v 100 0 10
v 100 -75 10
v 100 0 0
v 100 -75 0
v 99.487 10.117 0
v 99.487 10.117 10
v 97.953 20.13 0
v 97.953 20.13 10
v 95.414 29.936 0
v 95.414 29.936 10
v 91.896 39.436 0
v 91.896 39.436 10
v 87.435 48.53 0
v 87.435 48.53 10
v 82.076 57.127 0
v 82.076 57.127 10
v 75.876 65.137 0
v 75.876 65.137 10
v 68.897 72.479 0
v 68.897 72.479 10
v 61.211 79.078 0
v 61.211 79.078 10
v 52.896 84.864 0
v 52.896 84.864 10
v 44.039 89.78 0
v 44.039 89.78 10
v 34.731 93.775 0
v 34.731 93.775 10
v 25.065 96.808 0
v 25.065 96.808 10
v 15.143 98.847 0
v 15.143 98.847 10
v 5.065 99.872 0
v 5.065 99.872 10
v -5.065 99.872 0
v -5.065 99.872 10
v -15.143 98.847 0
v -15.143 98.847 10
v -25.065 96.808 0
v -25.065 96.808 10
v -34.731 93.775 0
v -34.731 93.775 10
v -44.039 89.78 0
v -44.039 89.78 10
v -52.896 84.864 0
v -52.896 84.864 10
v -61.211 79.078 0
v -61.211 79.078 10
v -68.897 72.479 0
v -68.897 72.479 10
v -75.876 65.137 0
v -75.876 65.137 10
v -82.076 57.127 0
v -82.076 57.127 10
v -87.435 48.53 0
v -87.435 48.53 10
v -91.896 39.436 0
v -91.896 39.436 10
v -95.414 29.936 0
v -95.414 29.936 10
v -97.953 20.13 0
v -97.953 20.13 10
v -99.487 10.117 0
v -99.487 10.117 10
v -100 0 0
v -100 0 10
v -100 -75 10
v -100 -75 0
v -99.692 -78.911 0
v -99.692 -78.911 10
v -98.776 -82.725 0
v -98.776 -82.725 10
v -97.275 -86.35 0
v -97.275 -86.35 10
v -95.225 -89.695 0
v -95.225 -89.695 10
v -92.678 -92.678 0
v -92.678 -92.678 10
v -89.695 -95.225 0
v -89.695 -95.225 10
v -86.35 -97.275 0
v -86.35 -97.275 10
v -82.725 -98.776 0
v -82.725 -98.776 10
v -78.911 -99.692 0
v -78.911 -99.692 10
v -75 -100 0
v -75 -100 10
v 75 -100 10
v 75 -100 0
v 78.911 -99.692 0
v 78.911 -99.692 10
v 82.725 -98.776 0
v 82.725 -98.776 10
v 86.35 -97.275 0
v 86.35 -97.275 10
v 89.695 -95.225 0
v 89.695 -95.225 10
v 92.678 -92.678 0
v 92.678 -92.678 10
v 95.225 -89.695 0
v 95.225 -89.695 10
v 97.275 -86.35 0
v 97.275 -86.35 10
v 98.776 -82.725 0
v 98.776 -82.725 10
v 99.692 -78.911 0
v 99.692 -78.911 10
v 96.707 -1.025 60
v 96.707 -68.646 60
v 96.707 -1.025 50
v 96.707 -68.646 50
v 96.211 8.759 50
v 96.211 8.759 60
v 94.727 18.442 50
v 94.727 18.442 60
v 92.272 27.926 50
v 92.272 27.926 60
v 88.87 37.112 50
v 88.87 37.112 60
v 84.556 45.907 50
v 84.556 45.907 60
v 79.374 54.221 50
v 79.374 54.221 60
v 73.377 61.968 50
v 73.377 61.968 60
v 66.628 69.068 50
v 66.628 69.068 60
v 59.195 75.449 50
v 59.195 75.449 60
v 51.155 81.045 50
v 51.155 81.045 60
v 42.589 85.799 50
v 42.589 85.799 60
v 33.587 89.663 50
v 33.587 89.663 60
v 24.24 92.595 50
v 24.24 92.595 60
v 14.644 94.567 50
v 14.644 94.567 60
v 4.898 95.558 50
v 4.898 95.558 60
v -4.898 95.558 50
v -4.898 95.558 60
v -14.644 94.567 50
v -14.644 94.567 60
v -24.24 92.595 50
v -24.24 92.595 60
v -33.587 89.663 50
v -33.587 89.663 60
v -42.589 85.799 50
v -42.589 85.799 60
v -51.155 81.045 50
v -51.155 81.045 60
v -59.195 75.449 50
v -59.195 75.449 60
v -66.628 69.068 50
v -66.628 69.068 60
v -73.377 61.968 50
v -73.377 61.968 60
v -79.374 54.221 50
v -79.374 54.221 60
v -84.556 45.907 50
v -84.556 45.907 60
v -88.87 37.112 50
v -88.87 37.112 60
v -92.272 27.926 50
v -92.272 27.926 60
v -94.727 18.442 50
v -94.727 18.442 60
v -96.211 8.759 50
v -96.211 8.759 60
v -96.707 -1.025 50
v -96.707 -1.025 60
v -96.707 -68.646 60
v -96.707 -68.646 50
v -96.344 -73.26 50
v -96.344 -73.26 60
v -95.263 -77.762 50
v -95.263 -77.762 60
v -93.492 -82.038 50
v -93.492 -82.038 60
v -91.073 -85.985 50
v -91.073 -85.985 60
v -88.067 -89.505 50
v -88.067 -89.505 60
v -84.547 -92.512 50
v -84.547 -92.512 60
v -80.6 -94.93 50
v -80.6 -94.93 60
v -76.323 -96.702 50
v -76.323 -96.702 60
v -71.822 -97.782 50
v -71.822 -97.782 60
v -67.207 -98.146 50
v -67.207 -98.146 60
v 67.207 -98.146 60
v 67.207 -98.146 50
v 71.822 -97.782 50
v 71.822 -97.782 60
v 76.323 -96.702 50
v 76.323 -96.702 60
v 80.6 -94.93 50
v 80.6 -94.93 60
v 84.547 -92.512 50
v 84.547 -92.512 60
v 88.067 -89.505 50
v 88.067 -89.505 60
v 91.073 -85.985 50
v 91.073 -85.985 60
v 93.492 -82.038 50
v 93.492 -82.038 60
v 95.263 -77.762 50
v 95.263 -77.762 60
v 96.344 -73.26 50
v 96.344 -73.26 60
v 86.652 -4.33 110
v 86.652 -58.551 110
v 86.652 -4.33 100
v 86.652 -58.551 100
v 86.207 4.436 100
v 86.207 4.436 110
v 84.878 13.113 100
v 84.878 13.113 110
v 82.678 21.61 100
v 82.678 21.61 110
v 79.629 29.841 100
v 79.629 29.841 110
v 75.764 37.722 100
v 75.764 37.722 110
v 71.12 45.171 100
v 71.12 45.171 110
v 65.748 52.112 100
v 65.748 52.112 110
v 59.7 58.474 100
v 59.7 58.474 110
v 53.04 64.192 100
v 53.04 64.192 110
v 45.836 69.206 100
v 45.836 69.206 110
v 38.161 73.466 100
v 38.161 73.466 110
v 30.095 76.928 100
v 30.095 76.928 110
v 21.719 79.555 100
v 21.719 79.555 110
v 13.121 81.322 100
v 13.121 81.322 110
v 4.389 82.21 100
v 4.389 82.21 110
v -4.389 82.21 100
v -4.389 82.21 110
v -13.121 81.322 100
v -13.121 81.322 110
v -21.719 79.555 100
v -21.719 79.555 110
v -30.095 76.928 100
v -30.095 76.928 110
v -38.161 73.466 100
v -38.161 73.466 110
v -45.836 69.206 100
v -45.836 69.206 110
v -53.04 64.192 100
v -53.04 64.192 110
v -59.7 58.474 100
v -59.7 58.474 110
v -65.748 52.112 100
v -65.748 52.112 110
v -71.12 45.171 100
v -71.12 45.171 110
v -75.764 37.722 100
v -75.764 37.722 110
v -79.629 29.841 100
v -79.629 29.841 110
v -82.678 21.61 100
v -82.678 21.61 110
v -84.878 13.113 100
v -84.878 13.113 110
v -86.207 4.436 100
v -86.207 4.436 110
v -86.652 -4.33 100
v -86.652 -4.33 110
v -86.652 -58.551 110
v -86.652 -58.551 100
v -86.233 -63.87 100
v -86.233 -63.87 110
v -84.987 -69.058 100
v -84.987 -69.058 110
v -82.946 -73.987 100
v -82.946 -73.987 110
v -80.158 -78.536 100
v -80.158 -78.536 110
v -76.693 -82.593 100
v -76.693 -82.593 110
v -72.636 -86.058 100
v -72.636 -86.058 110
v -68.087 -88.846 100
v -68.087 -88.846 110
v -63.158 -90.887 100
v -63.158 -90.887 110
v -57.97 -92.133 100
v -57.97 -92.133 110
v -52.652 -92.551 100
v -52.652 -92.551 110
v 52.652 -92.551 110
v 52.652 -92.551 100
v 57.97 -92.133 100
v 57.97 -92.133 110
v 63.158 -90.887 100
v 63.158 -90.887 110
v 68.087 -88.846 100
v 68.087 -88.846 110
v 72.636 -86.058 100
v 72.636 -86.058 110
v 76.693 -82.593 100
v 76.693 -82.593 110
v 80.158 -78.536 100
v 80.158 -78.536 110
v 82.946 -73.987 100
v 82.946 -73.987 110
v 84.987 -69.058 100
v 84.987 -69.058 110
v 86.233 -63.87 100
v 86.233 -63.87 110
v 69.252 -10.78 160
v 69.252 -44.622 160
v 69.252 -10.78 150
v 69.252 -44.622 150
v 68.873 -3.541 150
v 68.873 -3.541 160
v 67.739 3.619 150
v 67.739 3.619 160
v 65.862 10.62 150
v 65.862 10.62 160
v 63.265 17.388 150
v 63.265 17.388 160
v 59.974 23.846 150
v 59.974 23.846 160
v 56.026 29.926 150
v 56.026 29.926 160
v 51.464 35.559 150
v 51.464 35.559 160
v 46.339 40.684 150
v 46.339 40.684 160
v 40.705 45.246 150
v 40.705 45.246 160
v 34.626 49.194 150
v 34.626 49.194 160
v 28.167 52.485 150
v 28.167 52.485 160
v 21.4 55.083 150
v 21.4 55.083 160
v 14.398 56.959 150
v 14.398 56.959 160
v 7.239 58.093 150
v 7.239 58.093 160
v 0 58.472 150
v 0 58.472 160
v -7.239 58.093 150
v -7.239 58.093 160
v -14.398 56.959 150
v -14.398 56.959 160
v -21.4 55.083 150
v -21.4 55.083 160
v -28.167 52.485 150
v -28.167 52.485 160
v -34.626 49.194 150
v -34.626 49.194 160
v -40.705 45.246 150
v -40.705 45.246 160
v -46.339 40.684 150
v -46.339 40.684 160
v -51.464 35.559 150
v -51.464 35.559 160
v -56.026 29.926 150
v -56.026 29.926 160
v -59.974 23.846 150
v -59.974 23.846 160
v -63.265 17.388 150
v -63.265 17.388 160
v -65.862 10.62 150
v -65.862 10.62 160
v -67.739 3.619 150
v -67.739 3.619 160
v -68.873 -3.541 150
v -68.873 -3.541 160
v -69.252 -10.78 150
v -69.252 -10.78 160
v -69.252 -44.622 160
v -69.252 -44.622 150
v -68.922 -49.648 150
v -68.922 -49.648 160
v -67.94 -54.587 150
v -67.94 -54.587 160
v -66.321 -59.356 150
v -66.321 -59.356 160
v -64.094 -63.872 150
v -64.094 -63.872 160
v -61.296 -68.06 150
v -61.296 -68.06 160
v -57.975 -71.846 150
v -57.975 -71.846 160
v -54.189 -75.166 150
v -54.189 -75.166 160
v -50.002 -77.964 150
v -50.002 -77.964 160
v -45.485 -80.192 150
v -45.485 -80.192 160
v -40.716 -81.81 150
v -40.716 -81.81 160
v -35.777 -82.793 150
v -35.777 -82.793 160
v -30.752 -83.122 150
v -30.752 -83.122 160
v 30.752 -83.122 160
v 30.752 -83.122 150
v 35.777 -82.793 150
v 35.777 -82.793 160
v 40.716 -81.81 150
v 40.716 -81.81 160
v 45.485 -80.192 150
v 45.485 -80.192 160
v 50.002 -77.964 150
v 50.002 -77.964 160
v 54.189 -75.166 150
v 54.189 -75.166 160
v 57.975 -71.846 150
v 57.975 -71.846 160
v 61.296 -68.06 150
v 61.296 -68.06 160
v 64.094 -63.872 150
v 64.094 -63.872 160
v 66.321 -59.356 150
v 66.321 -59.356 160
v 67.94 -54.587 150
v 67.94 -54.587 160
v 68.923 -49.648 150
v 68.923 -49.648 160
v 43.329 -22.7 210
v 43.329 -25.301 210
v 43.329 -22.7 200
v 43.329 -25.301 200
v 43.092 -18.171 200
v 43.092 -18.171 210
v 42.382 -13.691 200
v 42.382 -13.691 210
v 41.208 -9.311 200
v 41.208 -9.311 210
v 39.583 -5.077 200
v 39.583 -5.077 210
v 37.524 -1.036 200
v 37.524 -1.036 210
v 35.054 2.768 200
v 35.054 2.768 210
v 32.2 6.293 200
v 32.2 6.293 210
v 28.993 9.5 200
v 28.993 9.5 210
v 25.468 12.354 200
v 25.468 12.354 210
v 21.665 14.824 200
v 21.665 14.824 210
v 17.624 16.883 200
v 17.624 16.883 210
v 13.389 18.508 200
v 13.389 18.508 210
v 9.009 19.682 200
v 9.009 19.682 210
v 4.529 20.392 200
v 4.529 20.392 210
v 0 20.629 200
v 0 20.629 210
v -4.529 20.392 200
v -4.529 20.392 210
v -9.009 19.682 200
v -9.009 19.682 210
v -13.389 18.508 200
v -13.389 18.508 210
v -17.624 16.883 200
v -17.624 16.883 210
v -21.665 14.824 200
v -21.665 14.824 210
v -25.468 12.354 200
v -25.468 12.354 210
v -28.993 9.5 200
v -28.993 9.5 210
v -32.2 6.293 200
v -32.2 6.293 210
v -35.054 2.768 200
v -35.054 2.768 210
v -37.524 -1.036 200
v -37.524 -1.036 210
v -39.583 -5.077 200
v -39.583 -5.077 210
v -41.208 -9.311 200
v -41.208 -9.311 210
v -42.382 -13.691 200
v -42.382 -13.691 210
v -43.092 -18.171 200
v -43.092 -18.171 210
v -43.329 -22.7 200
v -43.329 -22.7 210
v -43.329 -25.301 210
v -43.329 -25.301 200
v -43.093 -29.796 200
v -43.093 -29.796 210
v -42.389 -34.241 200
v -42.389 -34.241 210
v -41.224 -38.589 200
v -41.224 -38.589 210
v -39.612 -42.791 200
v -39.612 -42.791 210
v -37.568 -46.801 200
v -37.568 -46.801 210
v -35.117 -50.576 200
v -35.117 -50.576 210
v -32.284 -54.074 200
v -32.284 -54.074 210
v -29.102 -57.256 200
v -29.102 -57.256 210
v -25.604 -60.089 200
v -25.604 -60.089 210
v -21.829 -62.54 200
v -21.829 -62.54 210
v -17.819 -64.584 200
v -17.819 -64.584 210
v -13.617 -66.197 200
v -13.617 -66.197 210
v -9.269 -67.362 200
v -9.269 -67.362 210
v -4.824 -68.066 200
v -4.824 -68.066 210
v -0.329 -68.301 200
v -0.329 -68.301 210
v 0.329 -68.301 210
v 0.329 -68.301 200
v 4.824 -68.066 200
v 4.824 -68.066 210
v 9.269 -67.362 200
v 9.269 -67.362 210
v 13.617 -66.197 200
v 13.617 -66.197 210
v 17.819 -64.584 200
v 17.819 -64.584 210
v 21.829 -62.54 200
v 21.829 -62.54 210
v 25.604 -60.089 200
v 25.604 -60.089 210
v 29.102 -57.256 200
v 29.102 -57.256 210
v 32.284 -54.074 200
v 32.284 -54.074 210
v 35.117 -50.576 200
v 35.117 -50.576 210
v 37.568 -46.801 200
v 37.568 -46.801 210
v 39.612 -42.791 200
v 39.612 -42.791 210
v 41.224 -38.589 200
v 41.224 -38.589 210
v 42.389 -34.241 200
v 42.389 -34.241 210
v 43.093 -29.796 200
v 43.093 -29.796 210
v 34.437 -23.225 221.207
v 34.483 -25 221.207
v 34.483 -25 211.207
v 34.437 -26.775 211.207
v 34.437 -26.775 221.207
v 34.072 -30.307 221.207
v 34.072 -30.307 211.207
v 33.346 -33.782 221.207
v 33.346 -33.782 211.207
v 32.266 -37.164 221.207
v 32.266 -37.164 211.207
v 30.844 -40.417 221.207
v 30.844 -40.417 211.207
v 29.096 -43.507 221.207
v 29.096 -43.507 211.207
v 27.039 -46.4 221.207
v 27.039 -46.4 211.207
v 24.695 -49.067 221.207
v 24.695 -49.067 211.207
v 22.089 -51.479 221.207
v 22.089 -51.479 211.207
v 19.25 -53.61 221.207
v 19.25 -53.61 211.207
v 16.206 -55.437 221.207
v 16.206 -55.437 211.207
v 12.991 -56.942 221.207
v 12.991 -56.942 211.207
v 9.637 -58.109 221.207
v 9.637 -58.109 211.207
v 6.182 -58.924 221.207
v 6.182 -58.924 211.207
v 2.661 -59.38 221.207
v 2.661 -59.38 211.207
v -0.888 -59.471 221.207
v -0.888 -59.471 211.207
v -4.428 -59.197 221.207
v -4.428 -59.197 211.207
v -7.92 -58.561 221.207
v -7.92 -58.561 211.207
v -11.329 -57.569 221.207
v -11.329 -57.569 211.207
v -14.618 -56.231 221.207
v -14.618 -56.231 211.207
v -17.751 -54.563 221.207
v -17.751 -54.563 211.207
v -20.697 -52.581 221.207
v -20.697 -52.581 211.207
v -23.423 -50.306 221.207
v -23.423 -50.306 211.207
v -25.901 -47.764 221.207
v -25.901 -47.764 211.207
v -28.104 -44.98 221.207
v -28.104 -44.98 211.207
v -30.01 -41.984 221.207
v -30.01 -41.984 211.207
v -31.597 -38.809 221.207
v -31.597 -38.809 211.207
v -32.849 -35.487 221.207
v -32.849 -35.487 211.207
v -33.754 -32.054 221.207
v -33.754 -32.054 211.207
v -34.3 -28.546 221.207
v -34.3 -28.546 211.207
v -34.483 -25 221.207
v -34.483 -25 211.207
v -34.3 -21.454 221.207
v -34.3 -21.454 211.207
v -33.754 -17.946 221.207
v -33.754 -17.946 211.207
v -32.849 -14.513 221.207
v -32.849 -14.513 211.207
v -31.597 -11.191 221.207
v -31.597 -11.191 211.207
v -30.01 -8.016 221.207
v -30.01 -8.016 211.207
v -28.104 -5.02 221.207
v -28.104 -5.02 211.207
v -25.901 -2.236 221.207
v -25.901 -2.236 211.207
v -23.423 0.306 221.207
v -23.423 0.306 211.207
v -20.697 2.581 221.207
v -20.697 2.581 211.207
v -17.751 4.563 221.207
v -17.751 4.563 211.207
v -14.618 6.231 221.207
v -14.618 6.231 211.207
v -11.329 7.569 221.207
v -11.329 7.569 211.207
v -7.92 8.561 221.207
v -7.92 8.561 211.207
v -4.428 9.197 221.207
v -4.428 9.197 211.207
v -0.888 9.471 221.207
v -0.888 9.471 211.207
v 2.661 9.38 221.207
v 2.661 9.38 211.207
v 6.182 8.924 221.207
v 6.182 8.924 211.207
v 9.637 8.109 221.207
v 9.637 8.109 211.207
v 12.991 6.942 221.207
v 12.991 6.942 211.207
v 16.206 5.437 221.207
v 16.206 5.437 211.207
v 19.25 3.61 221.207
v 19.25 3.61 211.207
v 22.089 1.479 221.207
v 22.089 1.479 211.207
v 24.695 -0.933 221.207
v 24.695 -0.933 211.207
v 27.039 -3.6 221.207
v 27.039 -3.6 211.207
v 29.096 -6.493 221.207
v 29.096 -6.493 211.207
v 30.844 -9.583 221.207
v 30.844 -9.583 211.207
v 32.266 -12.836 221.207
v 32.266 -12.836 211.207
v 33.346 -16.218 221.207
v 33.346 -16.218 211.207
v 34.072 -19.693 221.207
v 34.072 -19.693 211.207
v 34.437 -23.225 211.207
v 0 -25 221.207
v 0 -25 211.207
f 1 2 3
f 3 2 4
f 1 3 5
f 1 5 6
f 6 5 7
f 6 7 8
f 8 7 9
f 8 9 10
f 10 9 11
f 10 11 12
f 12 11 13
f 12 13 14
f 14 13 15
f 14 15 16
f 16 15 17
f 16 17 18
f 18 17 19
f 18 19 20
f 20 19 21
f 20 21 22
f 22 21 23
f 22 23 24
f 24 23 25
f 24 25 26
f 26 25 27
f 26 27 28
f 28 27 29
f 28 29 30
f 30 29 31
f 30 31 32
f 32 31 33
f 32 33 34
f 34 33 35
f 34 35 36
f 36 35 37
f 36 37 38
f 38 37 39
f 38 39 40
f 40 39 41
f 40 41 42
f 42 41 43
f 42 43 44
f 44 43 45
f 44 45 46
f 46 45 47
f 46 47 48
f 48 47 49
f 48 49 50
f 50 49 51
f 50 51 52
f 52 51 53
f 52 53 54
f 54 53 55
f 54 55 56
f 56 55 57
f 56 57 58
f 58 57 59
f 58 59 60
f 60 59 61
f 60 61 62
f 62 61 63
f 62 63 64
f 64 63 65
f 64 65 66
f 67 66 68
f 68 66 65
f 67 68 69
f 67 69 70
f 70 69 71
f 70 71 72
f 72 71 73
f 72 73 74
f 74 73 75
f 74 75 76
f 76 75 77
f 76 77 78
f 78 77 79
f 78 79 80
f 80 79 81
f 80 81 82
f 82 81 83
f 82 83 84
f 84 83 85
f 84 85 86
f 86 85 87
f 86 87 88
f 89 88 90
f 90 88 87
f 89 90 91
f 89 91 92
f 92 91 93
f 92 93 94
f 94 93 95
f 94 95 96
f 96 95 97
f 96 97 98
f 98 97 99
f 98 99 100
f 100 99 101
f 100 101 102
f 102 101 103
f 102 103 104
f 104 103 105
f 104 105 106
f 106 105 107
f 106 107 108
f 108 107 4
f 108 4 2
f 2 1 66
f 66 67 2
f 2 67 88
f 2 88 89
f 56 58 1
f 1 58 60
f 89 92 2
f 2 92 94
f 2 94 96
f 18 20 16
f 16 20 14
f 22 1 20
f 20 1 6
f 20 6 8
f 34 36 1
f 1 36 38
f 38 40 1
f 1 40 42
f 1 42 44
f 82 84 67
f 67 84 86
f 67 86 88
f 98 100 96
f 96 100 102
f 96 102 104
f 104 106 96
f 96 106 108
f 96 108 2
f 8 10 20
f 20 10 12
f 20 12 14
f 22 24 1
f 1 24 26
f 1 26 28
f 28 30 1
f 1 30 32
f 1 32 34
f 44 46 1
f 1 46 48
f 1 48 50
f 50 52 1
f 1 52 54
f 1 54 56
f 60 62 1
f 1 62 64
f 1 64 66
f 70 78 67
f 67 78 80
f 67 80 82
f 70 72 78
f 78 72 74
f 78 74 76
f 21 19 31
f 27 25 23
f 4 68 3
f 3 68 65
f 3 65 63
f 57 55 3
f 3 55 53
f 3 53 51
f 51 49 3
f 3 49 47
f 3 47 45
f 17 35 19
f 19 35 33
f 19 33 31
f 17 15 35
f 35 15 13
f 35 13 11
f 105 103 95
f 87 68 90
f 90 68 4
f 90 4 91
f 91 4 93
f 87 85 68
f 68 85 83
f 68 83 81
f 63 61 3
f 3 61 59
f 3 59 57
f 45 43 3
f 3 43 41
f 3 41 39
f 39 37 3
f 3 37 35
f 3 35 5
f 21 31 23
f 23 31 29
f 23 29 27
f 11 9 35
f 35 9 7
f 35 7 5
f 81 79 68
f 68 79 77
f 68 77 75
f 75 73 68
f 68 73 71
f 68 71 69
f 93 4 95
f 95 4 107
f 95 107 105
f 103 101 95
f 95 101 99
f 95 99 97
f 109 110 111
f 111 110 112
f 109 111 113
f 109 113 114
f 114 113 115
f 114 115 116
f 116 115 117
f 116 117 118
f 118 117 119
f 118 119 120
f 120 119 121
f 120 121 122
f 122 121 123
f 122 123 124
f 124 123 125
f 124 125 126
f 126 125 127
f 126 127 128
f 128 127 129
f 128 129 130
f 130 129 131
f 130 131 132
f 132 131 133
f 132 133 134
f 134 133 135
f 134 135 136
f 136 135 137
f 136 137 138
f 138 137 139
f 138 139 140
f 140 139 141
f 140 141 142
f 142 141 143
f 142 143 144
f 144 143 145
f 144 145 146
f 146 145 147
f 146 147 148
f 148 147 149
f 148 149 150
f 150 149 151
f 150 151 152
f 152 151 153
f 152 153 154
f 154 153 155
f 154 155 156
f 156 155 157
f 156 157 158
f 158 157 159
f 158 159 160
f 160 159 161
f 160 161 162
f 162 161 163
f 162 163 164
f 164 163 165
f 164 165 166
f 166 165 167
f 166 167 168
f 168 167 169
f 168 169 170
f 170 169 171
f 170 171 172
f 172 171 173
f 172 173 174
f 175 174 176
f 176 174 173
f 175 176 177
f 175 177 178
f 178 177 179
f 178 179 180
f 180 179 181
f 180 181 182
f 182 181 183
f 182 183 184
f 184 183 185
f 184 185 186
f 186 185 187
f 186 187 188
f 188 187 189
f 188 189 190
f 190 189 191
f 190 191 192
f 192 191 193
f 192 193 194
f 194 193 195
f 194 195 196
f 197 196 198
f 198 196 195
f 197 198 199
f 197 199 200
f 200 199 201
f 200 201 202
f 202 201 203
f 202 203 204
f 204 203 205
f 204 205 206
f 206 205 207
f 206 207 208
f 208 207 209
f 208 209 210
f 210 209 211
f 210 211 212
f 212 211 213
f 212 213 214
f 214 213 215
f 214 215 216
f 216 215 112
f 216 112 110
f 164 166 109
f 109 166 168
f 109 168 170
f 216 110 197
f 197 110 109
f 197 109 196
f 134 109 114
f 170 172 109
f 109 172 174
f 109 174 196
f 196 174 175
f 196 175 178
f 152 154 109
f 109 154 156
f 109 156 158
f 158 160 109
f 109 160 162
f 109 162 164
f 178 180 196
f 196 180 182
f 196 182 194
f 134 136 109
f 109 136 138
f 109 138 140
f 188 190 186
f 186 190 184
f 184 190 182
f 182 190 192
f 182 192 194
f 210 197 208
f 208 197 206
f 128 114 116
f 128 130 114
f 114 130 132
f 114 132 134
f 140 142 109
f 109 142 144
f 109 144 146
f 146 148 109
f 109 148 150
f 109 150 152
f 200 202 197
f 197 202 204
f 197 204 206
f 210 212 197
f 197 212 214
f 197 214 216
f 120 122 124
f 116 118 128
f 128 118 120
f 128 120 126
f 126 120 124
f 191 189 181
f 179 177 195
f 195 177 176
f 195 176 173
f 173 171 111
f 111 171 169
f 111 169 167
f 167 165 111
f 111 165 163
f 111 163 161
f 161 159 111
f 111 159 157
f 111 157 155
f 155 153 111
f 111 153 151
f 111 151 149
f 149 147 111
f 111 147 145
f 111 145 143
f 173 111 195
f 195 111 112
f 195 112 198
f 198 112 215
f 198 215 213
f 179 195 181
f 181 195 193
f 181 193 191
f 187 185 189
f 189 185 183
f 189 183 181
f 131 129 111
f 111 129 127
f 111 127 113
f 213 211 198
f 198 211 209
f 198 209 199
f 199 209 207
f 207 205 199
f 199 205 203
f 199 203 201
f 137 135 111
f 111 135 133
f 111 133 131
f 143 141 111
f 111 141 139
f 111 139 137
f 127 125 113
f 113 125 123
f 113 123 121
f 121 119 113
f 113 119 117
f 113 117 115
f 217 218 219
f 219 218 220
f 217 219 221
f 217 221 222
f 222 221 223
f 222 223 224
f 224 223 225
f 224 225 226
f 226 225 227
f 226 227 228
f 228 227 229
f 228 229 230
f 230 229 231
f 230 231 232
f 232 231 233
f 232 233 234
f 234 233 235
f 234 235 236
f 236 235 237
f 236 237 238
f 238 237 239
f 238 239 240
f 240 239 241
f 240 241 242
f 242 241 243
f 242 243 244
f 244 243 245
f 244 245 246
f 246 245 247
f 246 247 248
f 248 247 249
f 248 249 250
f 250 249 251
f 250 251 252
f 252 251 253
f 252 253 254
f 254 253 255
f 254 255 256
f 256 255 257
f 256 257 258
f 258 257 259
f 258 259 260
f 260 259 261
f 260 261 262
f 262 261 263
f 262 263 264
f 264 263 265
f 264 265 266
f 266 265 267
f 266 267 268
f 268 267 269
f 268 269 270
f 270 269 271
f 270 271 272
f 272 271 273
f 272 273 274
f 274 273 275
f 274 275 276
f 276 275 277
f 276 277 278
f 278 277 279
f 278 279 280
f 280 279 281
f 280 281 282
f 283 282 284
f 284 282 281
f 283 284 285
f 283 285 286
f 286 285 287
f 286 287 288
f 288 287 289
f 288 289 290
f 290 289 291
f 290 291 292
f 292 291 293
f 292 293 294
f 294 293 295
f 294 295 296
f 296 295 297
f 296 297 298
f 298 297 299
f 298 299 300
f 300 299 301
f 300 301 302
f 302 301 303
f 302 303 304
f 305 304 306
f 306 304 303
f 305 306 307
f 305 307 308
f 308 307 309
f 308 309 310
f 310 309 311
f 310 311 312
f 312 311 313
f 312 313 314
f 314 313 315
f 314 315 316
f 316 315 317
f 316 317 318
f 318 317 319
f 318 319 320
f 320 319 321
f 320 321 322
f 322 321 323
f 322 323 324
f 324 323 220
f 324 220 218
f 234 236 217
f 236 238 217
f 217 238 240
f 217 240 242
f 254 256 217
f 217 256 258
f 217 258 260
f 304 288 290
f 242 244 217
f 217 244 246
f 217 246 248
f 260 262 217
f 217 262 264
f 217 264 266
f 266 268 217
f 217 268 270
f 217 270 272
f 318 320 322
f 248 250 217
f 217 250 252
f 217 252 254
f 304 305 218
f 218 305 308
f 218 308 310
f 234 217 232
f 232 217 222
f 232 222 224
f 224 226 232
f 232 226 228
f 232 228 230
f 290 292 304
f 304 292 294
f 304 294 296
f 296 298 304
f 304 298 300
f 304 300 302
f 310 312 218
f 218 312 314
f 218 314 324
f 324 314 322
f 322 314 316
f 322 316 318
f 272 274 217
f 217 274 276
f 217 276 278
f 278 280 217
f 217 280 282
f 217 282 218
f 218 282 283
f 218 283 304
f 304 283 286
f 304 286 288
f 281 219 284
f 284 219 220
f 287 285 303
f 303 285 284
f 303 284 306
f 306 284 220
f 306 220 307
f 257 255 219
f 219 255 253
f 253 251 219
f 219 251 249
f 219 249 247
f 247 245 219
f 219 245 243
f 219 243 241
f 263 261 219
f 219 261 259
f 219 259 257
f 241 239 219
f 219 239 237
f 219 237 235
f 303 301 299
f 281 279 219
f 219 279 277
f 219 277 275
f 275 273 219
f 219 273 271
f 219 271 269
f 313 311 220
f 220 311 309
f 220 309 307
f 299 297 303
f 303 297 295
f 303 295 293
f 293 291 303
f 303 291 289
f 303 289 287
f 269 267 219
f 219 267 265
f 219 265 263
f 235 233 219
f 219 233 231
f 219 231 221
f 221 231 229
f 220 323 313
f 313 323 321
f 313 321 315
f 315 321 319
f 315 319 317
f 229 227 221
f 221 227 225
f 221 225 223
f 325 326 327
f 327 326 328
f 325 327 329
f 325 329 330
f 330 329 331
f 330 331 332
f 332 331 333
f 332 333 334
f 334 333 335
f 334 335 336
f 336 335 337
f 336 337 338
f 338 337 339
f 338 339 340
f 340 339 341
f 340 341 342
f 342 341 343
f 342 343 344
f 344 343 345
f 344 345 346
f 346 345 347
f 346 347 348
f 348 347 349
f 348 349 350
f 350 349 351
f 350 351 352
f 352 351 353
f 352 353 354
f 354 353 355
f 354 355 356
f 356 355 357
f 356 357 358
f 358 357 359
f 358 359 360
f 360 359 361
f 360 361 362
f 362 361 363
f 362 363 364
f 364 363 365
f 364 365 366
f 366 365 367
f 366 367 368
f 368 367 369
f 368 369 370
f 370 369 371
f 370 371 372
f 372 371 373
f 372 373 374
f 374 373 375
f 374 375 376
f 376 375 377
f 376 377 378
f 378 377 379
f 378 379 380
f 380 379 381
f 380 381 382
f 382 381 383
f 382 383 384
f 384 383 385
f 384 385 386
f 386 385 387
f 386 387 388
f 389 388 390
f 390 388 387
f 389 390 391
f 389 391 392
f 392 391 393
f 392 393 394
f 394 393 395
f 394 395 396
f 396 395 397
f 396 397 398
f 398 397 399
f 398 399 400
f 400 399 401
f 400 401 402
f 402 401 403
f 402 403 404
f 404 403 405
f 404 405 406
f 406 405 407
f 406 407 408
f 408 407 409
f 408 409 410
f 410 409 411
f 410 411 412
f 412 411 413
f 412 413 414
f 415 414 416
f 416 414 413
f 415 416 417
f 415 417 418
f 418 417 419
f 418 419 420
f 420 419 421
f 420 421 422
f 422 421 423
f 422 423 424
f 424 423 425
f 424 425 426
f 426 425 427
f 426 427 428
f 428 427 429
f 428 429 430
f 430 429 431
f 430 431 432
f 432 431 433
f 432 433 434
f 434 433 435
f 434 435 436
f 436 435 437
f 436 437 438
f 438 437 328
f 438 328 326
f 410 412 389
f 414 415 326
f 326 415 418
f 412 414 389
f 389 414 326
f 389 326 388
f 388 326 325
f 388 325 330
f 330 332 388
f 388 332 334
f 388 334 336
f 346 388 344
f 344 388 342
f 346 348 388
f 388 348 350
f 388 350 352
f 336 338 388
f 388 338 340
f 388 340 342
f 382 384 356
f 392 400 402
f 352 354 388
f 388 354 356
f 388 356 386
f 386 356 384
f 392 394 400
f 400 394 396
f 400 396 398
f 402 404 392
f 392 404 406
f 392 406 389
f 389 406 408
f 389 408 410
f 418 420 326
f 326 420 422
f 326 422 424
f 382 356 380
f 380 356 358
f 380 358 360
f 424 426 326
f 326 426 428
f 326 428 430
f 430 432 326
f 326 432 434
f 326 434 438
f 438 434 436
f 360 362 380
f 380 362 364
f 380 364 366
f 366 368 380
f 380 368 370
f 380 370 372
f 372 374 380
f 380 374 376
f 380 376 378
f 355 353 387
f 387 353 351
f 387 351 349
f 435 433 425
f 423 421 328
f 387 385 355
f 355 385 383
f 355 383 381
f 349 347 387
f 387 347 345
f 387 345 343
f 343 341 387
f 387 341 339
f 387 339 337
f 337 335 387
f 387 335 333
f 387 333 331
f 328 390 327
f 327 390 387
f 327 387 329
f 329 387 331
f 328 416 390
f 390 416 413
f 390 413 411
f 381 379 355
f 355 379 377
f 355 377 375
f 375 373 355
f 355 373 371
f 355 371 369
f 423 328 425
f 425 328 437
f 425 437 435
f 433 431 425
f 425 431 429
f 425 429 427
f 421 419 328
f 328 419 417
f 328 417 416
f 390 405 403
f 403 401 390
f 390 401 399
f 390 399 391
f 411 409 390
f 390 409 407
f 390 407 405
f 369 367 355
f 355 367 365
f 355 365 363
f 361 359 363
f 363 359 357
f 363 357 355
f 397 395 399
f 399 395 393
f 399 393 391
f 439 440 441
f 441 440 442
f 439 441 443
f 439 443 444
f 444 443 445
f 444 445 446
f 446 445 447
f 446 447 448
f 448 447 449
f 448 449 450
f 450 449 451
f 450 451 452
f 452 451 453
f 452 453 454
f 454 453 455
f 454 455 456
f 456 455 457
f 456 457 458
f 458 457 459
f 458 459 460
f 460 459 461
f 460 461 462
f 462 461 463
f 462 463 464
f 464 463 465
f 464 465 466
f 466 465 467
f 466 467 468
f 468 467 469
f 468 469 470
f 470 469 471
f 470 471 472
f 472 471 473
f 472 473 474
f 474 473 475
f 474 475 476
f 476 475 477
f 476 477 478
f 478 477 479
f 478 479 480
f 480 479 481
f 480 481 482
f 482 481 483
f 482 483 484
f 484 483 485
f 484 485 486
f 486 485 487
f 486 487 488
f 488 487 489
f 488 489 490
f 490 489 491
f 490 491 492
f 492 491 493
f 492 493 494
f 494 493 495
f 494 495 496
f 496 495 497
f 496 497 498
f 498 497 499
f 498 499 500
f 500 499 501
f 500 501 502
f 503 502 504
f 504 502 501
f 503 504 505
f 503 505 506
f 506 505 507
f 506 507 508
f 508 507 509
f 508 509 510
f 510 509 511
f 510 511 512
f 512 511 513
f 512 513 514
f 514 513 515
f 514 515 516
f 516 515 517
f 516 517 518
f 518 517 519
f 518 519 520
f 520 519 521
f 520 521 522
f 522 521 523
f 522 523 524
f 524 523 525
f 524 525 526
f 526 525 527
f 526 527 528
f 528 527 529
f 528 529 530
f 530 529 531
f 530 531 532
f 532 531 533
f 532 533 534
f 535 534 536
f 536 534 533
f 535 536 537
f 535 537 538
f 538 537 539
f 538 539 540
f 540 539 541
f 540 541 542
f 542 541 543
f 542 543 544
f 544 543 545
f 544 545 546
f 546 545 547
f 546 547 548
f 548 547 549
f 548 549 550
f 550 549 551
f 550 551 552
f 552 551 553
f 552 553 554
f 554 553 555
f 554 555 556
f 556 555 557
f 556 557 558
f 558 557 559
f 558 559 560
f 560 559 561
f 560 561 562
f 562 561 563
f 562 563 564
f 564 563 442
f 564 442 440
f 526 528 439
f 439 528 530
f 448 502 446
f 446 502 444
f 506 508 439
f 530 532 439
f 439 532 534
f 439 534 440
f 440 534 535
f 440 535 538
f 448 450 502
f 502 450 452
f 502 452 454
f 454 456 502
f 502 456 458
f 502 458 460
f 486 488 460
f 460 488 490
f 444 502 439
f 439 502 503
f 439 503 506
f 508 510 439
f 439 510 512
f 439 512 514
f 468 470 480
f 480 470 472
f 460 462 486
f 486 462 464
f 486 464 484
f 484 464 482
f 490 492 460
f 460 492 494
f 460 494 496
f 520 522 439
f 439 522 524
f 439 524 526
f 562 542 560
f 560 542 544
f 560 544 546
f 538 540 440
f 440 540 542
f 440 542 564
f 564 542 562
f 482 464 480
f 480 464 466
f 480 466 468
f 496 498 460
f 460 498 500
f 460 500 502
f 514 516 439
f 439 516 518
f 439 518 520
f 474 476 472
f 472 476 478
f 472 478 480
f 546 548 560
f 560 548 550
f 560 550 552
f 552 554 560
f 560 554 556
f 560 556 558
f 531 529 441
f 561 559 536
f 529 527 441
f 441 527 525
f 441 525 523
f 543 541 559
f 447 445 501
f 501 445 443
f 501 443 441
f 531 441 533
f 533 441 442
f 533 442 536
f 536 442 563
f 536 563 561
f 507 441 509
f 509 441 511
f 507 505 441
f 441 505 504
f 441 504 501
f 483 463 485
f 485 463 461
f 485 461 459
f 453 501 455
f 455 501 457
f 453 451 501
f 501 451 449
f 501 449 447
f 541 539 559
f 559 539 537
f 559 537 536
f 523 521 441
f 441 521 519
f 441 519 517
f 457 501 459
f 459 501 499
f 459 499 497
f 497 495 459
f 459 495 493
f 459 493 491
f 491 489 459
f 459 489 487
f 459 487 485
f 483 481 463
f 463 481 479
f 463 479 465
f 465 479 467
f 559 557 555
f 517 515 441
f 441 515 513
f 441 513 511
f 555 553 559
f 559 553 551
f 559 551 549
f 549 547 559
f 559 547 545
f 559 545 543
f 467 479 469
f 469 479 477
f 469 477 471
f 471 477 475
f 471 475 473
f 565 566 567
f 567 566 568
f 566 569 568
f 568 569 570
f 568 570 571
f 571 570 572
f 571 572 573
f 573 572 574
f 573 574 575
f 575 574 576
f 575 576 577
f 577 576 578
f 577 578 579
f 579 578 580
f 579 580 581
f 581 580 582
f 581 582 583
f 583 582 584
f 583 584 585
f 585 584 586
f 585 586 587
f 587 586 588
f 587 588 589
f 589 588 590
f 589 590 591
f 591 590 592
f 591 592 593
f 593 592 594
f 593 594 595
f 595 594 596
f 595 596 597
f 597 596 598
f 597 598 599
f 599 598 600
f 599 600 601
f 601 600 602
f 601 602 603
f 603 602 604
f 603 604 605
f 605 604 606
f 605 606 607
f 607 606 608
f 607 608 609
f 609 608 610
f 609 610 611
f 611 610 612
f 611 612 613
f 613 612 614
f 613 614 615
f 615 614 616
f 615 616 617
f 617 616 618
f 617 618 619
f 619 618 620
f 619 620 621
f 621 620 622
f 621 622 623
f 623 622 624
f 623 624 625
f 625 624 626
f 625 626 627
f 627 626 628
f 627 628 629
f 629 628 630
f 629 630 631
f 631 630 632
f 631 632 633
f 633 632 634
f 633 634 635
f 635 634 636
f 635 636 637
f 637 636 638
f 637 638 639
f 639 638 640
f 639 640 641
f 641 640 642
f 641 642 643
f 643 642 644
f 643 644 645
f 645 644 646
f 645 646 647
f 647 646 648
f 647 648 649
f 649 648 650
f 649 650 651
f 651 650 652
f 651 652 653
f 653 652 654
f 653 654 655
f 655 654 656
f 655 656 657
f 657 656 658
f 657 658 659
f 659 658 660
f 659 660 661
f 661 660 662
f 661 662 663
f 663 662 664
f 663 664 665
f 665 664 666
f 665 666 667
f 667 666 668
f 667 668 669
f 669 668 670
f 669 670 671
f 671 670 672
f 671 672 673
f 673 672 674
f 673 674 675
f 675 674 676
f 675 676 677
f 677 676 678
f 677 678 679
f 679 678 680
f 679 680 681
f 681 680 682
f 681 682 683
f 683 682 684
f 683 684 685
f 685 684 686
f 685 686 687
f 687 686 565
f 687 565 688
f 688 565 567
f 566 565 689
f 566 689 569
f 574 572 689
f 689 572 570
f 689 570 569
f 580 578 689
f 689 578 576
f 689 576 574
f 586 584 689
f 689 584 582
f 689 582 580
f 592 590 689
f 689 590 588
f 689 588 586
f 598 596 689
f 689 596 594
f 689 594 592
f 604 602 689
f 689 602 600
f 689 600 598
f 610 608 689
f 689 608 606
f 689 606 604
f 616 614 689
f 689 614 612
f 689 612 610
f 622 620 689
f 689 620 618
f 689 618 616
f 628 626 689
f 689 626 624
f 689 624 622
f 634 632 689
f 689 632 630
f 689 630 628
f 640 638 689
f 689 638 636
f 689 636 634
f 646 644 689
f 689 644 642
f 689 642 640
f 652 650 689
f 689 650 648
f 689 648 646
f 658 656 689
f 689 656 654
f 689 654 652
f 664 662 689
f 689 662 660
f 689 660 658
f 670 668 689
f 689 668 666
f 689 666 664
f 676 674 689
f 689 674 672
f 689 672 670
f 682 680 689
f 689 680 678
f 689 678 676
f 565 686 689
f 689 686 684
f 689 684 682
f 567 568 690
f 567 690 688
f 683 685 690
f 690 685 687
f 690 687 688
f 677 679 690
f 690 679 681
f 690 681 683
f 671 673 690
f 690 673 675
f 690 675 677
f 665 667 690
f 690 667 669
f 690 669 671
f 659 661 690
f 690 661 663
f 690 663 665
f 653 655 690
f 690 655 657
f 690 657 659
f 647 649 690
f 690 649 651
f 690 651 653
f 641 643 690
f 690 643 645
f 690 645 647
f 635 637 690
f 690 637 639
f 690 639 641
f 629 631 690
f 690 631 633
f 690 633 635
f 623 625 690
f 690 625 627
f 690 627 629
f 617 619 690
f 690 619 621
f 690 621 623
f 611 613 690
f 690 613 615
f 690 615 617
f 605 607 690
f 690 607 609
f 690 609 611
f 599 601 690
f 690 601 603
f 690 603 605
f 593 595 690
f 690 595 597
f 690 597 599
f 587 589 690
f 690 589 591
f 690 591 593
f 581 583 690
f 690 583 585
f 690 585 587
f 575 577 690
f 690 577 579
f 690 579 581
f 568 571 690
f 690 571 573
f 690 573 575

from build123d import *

# Parameters (mm, degrees)
BOSS_EXTRUDE1_DEPTH = 10
BOSS_EXTRUDE2_DEPTH = 10
BOSS_EXTRUDE3_DEPTH = 10
BOSS_EXTRUDE4_DEPTH = 10
BOSS_EXTRUDE5_DEPTH = 10
SKETCH8_R           = 34.482758621
BOSS_EXTRUDE6_DEPTH = 10


with BuildPart() as part:
    # Sketch1 → Boss-Extrude1 (new body)
    with BuildSketch(Plane.XY):
        with BuildLine():
            Line((100, 0), (100, -75))
            ThreePointArc((100, -75), (92.67766953, -92.67766953), (75, -100))
            Line((75, -100), (-75, -100))
            ThreePointArc((-75, -100), (-92.67766953, -92.67766953), (-100, -75))
            Line((-100, -75), (-100, 0))
            ThreePointArc((-100, 0), (0, 100), (100, 0))
        make_face()
    extrude(amount=BOSS_EXTRUDE1_DEPTH)


with BuildPart() as body_2:
    # Sketch4 → Boss-Extrude2 (new body)
    with BuildSketch(Plane.XY.offset(50)):
        with BuildLine():
            Line((96.707090819, -1.024763326), (96.707090819, -68.645600892))
            ThreePointArc((96.707090819, -68.645600892), (88.066740864, -89.505250937), (67.207090819, -98.145600892))
            Line((67.207090819, -98.145600892), (-67.207090819, -98.145600892))
            ThreePointArc((-67.207090819, -98.145600892), (-88.066740864, -89.505250937), (-96.707090819, -68.645600892))
            Line((-96.707090819, -68.645600892), (-96.707090819, -1.024763326))
            ThreePointArc((-96.707090819, -1.024763326), (0, 95.682327493), (96.707090819, -1.024763326))
        make_face()
    extrude(amount=BOSS_EXTRUDE2_DEPTH)


with BuildPart() as body_3:
    # Sketch5 → Boss-Extrude3 (new body)
    with BuildSketch(Plane.XY.offset(100)):
        with BuildLine():
            Line((86.651566319, -4.330195939), (86.651566319, -58.551496141))
            ThreePointArc((86.651566319, -58.551496141), (76.693196879, -82.593126701), (52.651566319, -92.551496141))
            Line((52.651566319, -92.551496141), (-52.651566319, -92.551496141))
            ThreePointArc((-52.651566319, -92.551496141), (-76.693196879, -82.593126701), (-86.651566319, -58.551496141))
            Line((-86.651566319, -58.551496141), (-86.651566319, -4.330195939))
            ThreePointArc((-86.651566319, -4.330195939), (0, 82.32137038), (86.651566319, -4.330195939))
        make_face()
    extrude(amount=BOSS_EXTRUDE3_DEPTH)


with BuildPart() as body_4:
    # Sketch6 → Boss-Extrude4 (new body)
    with BuildSketch(Plane.XY.offset(150)):
        with BuildLine():
            Line((-30.75187232, -83.122329054), (30.75187232, -83.122329054))
            ThreePointArc((30.75187232, -83.122329054), (57.975483396, -71.84594013), (69.25187232, -44.622329054))
            Line((69.25187232, -44.622329054), (69.25187232, -10.779688657))
            ThreePointArc((69.25187232, -10.779688657), (0, 58.472183663), (-69.25187232, -10.779688657))
            Line((-69.25187232, -10.779688657), (-69.25187232, -44.622329054))
            ThreePointArc((-69.25187232, -44.622329054), (-57.975483396, -71.84594013), (-30.75187232, -83.122329054))
        make_face()
    extrude(amount=BOSS_EXTRUDE4_DEPTH)


with BuildPart() as body_5:
    # Sketch7 → Boss-Extrude5 (new body)
    with BuildSketch(Plane.XY.offset(200)):
        with BuildLine():
            Line((-0.329054315, -68.301270189), (0.329054315, -68.301270189))
            ThreePointArc((0.329054315, -68.301270189), (30.734645906, -55.70686178), (43.329054315, -25.301270189))
            Line((43.329054315, -25.301270189), (43.329054315, -22.700067601))
            ThreePointArc((43.329054315, -22.700067601), (0, 20.628986714), (-43.329054315, -22.700067601))
            Line((-43.329054315, -22.700067601), (-43.329054315, -25.301270189))
            ThreePointArc((-43.329054315, -25.301270189), (-30.734645906, -55.70686178), (-0.329054315, -68.301270189))
        make_face()
    extrude(amount=BOSS_EXTRUDE5_DEPTH)


with BuildPart() as body_6:
    # Sketch8 → Boss-Extrude6 (new body)
    with BuildSketch(Plane.XY.offset(211.206896552)):
        with Locations((0, -25)):
            Circle(SKETCH8_R)
    extrude(amount=BOSS_EXTRUDE6_DEPTH)


solid = Compound([part.part, body_2.part, body_3.part, body_4.part, body_5.part, body_6.part])
